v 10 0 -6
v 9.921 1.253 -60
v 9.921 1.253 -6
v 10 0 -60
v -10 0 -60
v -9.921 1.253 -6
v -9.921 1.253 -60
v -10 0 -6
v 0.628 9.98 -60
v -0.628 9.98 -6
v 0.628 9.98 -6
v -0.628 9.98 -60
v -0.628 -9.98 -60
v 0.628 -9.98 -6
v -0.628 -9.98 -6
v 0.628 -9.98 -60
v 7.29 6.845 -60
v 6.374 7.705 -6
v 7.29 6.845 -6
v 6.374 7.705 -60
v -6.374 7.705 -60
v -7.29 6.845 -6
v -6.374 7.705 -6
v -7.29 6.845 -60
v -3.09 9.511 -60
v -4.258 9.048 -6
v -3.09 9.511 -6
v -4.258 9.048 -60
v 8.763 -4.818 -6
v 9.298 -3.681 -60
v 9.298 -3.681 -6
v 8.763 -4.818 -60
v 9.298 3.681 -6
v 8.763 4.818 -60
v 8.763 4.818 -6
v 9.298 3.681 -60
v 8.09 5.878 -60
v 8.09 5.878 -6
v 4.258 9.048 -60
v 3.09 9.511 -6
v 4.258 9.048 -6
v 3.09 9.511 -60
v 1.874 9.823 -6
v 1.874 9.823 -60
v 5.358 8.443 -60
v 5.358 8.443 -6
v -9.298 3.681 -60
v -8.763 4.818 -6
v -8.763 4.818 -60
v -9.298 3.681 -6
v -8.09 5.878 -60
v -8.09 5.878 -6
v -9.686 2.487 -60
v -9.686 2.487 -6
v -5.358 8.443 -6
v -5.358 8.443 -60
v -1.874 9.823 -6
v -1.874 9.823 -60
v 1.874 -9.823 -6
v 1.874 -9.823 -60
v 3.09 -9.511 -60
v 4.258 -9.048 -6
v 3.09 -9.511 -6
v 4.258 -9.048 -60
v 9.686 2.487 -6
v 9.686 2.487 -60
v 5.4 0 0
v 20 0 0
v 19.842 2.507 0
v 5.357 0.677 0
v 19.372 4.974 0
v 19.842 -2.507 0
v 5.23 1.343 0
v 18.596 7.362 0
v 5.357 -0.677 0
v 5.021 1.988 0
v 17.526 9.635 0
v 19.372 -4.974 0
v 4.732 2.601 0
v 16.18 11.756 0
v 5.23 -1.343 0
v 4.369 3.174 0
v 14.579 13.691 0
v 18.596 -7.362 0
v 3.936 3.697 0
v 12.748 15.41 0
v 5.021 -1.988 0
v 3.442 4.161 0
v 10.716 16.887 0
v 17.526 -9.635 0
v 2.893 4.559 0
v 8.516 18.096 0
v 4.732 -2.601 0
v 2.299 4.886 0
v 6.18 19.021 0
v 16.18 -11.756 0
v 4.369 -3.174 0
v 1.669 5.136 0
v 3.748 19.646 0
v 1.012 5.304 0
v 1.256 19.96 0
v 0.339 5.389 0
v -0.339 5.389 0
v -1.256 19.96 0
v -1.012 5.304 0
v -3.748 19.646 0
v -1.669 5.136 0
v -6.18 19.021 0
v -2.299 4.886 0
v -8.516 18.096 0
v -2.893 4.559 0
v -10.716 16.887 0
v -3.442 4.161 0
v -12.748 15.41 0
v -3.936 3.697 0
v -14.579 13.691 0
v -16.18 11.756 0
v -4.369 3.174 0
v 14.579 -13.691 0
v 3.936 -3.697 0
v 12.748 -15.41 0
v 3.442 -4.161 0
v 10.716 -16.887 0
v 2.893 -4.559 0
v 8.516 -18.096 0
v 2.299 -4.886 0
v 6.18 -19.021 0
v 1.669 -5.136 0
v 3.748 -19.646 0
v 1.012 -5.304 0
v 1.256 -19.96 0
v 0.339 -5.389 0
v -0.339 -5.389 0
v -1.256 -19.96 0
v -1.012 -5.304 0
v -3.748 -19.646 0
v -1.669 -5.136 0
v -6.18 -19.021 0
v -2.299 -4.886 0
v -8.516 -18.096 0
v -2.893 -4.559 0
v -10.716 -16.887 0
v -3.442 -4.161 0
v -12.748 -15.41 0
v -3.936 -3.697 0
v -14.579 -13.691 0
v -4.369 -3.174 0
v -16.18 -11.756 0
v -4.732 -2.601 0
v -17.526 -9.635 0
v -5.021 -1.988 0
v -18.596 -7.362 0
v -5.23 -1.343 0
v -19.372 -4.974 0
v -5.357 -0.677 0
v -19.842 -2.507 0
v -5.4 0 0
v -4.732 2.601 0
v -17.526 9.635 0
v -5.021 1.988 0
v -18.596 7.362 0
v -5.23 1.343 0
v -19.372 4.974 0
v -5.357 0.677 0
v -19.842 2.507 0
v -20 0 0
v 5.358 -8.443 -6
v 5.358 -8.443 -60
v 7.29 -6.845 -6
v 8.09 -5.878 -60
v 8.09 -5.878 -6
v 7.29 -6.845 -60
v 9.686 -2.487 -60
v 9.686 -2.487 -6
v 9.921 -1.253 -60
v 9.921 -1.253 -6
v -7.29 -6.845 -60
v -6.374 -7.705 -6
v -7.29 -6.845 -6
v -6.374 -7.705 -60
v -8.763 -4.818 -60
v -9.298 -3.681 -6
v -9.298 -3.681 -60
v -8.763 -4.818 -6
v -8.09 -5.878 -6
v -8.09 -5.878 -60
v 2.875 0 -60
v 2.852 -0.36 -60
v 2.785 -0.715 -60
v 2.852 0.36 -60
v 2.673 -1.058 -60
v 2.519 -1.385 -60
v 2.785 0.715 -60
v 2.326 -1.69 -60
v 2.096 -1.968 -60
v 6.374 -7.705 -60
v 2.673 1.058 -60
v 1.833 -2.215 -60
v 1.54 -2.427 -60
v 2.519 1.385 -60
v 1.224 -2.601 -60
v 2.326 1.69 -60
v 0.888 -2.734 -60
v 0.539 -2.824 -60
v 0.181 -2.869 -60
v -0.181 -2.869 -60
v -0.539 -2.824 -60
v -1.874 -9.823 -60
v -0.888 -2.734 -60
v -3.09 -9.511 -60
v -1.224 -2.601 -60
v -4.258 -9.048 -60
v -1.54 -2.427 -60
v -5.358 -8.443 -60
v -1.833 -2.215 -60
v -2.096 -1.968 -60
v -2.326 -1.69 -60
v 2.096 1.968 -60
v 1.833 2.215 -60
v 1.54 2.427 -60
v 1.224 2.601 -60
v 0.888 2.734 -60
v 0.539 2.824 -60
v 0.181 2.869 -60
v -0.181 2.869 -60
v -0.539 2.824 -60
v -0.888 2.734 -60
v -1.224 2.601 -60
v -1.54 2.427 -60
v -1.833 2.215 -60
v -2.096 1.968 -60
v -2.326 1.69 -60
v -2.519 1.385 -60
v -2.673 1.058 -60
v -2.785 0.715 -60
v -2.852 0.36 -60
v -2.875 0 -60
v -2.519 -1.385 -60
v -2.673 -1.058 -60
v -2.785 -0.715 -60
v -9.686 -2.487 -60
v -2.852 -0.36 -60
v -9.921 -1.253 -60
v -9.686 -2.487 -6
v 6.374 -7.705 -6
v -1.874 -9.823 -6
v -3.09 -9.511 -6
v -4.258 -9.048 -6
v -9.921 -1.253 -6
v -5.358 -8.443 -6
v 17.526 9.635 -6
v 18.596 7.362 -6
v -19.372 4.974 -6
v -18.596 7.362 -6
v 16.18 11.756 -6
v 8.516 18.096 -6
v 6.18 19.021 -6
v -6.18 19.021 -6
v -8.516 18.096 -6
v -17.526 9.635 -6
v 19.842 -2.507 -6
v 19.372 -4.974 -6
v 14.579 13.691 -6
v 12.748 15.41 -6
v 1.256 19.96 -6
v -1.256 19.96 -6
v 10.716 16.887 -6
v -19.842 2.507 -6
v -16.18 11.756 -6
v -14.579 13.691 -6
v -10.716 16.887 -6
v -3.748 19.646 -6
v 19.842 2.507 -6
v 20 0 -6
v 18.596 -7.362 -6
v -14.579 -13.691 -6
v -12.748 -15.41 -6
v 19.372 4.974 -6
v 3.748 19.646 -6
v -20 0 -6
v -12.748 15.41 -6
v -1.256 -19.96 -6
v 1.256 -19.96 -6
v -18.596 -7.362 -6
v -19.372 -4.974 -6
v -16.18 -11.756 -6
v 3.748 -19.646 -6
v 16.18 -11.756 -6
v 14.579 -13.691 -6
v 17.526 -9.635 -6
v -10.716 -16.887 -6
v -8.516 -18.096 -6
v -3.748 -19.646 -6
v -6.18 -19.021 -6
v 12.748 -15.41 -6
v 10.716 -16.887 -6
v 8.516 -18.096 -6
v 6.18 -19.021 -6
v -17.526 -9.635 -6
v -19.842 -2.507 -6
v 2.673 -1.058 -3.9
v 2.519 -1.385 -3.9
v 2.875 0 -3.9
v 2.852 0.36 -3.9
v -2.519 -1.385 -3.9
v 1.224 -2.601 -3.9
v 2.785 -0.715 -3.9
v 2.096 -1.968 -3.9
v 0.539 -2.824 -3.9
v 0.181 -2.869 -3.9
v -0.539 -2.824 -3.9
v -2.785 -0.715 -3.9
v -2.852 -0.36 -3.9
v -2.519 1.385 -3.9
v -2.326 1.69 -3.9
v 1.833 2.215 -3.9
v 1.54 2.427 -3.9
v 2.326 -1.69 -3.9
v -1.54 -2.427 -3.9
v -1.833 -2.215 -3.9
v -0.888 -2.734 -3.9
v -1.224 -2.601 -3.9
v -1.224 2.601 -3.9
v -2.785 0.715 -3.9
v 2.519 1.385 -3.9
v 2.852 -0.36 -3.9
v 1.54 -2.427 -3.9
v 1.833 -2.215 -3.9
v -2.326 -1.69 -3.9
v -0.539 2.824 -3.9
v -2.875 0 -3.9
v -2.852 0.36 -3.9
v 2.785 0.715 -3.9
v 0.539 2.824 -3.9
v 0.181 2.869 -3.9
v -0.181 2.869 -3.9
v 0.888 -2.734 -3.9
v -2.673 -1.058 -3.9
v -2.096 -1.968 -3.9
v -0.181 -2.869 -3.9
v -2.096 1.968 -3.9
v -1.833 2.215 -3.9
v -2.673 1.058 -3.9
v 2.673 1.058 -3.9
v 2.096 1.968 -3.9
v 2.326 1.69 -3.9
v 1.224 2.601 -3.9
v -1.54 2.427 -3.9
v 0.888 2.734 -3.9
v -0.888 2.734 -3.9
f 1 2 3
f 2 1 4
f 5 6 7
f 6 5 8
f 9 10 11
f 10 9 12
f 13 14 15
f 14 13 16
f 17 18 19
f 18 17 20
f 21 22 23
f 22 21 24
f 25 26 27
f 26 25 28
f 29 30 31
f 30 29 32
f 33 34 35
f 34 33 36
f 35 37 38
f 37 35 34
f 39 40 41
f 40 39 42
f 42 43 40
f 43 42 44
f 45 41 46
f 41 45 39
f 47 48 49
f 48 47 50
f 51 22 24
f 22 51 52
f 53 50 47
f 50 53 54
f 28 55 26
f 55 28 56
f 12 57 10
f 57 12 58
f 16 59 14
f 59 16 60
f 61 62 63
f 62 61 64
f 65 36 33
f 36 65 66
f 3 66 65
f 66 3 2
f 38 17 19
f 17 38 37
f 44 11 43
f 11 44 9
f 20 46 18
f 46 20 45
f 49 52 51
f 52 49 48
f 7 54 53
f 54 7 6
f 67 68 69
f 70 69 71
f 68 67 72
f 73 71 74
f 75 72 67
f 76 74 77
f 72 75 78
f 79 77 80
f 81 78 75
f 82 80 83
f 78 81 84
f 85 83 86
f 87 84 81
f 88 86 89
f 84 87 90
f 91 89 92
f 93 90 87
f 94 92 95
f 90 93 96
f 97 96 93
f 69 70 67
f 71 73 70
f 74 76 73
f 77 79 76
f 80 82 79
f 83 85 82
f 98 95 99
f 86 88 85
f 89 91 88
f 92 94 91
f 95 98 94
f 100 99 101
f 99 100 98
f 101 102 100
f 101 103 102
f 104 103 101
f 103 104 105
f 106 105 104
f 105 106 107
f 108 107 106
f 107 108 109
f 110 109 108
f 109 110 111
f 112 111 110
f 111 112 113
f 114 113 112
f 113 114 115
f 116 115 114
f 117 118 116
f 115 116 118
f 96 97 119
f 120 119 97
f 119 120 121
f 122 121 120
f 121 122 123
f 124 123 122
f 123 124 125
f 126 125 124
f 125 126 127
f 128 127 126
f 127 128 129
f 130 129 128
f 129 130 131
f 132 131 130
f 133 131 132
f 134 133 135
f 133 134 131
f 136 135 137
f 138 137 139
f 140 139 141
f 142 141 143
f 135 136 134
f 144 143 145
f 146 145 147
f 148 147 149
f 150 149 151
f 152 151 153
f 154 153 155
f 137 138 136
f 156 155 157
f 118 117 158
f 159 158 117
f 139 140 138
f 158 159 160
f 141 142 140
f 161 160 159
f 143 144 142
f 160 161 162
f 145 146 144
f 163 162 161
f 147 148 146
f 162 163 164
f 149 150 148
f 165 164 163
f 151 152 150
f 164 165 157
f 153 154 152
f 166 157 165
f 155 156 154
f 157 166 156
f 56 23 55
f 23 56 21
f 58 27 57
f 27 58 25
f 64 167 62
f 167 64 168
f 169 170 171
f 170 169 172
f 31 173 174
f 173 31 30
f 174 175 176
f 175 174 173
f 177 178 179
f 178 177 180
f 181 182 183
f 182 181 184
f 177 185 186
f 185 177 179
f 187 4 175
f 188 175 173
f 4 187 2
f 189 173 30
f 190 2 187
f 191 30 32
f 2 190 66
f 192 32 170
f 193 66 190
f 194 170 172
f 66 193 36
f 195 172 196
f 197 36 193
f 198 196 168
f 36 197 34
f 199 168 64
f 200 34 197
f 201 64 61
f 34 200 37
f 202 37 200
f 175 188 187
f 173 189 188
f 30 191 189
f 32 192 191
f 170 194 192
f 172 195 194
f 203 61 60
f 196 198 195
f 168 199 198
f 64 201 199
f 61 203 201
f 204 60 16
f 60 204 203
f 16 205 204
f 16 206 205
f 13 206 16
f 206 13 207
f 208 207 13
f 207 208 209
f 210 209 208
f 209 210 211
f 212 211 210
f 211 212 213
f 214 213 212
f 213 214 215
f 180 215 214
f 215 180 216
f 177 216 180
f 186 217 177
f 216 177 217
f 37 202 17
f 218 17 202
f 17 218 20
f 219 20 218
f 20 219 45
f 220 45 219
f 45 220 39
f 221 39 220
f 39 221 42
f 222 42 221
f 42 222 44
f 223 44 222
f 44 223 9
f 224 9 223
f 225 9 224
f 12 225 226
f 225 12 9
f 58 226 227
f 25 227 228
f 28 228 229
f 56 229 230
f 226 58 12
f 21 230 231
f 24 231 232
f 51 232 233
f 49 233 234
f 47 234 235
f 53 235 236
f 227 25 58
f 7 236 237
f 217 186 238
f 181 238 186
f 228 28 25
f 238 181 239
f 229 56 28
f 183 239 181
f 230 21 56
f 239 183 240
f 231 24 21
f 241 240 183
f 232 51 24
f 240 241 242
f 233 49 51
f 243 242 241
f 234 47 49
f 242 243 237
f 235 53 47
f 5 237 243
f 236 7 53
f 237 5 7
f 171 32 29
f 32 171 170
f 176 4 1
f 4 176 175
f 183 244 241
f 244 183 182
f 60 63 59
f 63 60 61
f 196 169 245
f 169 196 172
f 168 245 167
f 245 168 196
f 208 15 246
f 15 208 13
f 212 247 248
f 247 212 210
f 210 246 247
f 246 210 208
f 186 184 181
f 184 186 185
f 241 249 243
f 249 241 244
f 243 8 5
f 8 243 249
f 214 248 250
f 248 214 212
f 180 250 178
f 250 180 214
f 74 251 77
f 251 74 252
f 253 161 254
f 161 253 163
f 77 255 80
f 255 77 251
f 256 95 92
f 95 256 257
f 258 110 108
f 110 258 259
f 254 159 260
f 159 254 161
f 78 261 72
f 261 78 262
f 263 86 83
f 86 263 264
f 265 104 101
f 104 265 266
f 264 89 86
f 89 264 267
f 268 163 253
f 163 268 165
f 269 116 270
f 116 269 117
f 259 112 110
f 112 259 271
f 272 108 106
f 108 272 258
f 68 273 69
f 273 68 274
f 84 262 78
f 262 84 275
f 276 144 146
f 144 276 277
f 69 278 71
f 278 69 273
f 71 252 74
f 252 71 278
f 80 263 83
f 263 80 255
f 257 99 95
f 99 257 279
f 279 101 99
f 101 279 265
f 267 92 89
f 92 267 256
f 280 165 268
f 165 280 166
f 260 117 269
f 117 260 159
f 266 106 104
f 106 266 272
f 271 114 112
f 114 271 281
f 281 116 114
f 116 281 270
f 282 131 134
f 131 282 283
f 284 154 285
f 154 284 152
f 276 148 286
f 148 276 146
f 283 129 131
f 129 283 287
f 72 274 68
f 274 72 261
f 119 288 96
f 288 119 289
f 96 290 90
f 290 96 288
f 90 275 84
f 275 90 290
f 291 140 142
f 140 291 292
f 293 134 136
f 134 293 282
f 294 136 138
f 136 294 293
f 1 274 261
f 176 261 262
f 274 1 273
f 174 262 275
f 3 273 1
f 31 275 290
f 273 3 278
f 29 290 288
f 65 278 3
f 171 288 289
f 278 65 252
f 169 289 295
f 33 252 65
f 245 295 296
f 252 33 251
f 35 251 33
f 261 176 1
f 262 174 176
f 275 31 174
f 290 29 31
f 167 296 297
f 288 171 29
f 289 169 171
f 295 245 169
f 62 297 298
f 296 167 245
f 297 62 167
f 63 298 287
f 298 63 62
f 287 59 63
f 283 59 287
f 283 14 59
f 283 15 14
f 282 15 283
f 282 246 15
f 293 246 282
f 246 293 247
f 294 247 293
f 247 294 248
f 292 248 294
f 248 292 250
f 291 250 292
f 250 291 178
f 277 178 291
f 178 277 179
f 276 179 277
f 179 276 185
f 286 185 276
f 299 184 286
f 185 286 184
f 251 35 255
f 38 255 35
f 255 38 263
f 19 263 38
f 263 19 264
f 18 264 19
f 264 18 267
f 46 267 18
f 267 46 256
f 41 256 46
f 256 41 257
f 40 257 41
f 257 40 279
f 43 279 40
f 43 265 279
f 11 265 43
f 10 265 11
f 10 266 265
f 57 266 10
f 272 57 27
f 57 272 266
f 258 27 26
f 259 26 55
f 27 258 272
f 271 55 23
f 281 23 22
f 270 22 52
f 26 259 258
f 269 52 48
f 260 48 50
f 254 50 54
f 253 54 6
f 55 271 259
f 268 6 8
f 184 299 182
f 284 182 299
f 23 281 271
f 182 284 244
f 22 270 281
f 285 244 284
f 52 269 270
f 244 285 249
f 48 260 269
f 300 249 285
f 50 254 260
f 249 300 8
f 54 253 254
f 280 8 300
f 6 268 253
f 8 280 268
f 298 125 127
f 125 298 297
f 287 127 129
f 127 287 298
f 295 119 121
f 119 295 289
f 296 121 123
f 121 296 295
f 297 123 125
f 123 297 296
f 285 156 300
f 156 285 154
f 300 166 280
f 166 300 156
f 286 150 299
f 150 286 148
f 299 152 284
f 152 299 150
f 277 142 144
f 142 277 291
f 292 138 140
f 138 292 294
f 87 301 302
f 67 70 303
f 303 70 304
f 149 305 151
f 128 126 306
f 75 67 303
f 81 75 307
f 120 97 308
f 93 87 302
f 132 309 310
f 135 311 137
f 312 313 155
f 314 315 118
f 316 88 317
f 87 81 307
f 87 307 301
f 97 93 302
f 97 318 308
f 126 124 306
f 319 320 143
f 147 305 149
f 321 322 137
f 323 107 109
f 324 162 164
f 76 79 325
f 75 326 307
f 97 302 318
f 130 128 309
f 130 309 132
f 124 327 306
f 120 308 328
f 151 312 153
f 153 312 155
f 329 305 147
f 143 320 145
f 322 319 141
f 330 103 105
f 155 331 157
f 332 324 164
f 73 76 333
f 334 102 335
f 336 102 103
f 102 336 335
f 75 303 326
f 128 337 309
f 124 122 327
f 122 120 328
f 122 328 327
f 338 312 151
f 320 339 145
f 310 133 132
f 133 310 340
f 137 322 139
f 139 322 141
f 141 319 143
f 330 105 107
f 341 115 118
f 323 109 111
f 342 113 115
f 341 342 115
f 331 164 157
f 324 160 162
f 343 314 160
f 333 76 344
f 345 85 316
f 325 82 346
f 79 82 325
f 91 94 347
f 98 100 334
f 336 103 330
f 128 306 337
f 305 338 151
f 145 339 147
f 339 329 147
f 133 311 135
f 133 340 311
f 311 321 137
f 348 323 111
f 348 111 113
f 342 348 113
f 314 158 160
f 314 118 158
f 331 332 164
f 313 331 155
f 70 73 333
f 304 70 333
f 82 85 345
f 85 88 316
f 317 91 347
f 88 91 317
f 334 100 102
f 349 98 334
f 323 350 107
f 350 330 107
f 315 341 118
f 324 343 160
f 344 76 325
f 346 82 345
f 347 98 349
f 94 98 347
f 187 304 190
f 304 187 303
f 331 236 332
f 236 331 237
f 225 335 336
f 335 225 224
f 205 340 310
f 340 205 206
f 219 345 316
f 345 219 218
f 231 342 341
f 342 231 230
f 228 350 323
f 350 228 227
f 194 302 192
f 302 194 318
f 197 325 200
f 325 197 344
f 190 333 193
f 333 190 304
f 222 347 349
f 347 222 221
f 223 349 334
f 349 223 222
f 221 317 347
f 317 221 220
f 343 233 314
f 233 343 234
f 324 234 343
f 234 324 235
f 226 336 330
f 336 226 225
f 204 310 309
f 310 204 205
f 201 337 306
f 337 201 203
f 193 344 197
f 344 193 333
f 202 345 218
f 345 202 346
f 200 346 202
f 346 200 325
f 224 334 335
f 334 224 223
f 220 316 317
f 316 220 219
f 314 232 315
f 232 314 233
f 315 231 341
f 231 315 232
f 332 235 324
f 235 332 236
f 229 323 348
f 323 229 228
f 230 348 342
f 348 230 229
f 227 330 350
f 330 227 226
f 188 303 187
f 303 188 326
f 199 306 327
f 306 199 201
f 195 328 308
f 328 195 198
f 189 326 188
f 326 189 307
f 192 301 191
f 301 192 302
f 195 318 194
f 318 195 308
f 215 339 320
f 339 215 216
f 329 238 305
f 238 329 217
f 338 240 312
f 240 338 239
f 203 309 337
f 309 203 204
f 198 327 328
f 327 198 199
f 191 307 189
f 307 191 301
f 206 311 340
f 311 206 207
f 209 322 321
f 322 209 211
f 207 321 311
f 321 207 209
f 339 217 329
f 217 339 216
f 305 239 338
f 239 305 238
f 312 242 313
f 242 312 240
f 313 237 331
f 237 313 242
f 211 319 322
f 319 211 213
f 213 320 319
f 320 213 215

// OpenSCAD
$fn = 50;


difference() {
	union() {
		translate(v = [0, 0, -60.0000000000]) {
			cylinder(h = 60, r = 10.0000000000);
		}
		translate(v = [0, 0, -6.0000000000]) {
			cylinder(h = 6, r = 20.0000000000);
		}
	}
	union() {
		translate(v = [0, 0, 0]) {
			rotate(a = [0, 0, 0]) {
				difference() {
					union() {
						#translate(v = [0, 0, -60.0000000000]) {
							cylinder(h = 60, r = 2.6000000000);
						}
						#translate(v = [0, 0, -3.9000000000]) {
							cylinder(h = 3.9000000000, r = 10.0000000000, r1 = 2.8750000000, r2 = 5.4000000000);
						}
						#translate(v = [0, 0, -60.0000000000]) {
							cylinder(h = 60, r = 2.8750000000);
						}
						#translate(v = [0, 0, -60.0000000000]) {
							cylinder(h = 60, r = 2.6000000000);
						}
					}
					union();
				}
			}
		}
	}
}
